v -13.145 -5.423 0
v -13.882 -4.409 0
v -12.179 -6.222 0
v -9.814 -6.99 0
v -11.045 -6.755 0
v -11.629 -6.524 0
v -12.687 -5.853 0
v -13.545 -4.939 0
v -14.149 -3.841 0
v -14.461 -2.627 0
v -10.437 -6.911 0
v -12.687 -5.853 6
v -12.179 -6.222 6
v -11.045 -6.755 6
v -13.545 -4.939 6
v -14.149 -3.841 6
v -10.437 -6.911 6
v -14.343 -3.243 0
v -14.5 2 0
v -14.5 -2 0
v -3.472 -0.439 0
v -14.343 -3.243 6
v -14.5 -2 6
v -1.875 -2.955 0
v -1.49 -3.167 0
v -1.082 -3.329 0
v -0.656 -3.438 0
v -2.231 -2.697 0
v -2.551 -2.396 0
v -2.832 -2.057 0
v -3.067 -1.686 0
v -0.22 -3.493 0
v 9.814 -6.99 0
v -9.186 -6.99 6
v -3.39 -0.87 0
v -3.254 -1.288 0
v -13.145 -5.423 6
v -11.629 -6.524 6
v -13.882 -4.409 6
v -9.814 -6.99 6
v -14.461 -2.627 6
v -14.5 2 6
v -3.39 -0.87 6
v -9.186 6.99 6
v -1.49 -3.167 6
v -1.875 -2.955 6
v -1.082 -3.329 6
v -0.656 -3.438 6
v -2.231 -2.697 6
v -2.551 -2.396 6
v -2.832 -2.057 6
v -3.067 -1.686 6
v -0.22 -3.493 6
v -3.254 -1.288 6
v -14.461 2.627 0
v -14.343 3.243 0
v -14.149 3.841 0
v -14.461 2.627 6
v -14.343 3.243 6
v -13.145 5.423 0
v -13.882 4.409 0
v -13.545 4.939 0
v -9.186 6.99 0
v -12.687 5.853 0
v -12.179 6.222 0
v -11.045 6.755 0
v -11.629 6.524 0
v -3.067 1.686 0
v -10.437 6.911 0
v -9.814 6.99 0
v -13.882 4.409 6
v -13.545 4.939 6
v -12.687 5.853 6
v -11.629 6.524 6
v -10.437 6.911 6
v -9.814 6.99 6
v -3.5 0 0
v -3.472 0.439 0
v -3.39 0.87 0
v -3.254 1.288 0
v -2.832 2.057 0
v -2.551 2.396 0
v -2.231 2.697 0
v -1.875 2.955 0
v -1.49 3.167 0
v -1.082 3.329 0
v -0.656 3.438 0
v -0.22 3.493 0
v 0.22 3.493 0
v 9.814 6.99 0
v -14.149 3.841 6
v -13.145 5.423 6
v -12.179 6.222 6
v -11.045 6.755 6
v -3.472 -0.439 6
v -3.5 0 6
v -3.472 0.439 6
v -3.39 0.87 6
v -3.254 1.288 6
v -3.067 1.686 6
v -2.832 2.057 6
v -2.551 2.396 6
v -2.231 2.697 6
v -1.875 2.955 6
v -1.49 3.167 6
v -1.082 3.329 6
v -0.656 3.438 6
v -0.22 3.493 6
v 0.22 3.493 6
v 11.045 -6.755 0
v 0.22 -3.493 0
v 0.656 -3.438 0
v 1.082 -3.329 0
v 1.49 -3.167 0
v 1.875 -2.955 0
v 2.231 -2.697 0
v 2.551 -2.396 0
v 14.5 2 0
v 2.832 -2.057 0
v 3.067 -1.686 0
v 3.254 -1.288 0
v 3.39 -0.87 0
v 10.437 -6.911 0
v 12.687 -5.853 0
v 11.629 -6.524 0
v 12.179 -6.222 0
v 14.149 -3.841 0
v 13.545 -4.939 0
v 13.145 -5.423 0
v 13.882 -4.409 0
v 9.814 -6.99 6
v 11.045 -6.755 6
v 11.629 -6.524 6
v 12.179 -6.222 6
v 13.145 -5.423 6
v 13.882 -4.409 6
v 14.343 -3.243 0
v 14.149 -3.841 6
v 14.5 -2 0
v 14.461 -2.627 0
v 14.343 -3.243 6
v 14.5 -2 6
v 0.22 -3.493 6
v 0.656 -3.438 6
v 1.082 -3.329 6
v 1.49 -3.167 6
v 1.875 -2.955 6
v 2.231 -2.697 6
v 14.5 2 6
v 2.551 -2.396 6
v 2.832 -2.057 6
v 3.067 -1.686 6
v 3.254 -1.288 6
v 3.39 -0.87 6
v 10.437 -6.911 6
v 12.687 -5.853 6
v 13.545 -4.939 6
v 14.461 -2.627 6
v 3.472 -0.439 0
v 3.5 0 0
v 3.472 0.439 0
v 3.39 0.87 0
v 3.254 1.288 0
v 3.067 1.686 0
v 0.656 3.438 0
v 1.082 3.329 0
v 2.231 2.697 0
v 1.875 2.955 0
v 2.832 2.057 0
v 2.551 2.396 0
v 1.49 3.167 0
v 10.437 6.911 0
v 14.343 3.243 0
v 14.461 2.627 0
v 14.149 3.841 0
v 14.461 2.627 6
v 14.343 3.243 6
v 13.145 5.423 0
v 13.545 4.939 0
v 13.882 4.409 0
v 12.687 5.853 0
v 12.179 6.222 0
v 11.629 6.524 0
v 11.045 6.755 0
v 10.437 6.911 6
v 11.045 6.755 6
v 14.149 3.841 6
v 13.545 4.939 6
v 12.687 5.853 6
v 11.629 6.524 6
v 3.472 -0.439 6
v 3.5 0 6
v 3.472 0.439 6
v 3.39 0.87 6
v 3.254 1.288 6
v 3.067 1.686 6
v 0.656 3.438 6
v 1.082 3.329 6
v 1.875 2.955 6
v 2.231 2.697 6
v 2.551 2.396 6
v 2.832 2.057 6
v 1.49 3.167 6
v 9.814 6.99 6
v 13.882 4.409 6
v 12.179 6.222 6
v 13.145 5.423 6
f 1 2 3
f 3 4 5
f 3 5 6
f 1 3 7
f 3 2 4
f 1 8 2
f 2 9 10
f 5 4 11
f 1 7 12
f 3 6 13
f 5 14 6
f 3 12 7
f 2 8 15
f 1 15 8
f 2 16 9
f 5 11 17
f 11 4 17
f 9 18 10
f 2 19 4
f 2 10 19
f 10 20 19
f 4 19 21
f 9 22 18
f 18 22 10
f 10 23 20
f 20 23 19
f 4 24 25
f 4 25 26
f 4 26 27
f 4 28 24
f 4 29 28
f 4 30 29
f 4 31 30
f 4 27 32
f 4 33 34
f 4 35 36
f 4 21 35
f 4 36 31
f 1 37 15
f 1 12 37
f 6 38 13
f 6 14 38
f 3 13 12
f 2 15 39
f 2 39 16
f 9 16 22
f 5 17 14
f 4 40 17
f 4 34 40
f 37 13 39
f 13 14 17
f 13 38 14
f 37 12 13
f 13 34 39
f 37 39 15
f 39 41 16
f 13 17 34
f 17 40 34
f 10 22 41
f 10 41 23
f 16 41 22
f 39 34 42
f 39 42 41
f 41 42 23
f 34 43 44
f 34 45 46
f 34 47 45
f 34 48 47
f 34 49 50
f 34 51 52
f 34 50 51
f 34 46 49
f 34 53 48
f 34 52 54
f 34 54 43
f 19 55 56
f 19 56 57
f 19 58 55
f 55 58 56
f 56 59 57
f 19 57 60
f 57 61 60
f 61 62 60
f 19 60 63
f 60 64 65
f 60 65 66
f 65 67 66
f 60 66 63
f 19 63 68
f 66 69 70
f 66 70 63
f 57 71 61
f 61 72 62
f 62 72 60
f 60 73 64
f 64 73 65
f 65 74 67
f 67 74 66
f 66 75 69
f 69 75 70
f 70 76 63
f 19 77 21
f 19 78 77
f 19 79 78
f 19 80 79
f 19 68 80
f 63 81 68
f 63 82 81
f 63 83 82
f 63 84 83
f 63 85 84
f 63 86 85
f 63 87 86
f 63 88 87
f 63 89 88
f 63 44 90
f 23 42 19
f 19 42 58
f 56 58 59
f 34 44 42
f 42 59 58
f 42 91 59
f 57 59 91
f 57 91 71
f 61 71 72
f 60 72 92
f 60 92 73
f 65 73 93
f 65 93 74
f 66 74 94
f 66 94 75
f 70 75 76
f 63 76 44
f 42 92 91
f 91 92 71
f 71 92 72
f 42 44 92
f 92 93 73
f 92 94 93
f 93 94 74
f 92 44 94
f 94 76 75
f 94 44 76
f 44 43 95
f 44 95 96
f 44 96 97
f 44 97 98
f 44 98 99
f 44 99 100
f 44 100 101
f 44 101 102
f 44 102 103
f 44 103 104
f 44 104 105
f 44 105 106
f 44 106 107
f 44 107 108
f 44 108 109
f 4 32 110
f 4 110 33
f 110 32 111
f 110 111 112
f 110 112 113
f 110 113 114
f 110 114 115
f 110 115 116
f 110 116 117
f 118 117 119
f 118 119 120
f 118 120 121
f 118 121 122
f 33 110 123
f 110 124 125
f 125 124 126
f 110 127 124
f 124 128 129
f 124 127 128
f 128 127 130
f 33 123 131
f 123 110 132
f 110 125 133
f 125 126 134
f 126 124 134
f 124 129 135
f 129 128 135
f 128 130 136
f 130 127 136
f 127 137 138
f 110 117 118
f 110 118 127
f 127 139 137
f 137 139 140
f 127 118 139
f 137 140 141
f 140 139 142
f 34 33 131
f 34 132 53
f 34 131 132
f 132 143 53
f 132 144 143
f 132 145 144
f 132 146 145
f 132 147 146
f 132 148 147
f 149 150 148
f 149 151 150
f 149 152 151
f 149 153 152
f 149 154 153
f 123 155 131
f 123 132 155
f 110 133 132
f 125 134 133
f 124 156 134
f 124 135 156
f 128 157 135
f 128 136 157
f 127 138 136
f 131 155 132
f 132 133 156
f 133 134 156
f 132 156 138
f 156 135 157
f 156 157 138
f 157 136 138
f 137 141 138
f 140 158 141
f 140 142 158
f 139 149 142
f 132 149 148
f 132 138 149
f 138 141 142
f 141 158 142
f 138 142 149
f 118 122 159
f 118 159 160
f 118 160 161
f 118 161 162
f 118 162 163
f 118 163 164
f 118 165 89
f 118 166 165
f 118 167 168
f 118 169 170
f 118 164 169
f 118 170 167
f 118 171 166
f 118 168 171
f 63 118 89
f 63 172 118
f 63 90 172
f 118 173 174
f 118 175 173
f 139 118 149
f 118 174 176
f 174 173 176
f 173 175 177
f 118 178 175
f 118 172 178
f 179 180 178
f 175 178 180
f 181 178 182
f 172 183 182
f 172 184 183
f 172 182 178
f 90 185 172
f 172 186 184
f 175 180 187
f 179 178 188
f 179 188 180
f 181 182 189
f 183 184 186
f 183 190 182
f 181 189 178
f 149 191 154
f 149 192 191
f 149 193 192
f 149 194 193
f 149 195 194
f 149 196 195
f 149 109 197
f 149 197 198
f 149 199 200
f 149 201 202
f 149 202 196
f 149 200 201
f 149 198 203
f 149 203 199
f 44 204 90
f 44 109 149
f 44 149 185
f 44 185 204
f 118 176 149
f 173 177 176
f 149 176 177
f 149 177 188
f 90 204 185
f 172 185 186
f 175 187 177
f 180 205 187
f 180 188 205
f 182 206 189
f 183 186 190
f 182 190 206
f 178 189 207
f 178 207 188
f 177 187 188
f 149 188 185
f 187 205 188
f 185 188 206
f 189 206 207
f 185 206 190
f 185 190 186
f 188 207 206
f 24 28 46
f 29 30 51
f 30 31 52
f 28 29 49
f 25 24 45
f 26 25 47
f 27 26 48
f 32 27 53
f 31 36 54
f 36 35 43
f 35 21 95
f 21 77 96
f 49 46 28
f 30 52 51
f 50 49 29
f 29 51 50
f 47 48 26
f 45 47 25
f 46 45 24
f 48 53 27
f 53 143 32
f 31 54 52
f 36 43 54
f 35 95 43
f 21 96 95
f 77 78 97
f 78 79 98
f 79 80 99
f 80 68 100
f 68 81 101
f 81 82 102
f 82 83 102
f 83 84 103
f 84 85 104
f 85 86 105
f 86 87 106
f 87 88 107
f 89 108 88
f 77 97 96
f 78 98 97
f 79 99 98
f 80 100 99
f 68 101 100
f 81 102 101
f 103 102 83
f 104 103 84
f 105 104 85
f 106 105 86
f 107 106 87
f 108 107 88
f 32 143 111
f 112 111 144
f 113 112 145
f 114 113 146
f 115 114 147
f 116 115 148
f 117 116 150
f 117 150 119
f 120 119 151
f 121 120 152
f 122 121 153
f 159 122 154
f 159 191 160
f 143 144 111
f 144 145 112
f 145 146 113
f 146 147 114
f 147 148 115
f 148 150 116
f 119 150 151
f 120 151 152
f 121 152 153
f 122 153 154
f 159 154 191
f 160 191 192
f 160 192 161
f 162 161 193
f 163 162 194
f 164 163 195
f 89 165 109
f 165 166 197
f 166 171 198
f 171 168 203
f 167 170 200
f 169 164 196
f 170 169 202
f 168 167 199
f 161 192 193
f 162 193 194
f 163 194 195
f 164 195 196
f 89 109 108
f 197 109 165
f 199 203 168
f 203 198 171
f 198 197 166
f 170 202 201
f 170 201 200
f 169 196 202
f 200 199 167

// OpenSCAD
$fn = 50;

difference() {
	union() {
		hull() {
			translate(v = [-9.5, 2.0, 0]) {
				cylinder(h = 6, r = 5);
			}
			translate(v = [9.5, 2.0, 0]) {
				cylinder(h = 6, r = 5);
			}
			translate(v = [-9.5, -2.0, 0]) {
				cylinder(h = 6, r = 5);
			}
			translate(v = [9.5, -2.0, 0]) {
				cylinder(h = 6, r = 5);
			}
		}
	}
	union() {
		cylinder(h = 6, r = 3.5);
	}
}
